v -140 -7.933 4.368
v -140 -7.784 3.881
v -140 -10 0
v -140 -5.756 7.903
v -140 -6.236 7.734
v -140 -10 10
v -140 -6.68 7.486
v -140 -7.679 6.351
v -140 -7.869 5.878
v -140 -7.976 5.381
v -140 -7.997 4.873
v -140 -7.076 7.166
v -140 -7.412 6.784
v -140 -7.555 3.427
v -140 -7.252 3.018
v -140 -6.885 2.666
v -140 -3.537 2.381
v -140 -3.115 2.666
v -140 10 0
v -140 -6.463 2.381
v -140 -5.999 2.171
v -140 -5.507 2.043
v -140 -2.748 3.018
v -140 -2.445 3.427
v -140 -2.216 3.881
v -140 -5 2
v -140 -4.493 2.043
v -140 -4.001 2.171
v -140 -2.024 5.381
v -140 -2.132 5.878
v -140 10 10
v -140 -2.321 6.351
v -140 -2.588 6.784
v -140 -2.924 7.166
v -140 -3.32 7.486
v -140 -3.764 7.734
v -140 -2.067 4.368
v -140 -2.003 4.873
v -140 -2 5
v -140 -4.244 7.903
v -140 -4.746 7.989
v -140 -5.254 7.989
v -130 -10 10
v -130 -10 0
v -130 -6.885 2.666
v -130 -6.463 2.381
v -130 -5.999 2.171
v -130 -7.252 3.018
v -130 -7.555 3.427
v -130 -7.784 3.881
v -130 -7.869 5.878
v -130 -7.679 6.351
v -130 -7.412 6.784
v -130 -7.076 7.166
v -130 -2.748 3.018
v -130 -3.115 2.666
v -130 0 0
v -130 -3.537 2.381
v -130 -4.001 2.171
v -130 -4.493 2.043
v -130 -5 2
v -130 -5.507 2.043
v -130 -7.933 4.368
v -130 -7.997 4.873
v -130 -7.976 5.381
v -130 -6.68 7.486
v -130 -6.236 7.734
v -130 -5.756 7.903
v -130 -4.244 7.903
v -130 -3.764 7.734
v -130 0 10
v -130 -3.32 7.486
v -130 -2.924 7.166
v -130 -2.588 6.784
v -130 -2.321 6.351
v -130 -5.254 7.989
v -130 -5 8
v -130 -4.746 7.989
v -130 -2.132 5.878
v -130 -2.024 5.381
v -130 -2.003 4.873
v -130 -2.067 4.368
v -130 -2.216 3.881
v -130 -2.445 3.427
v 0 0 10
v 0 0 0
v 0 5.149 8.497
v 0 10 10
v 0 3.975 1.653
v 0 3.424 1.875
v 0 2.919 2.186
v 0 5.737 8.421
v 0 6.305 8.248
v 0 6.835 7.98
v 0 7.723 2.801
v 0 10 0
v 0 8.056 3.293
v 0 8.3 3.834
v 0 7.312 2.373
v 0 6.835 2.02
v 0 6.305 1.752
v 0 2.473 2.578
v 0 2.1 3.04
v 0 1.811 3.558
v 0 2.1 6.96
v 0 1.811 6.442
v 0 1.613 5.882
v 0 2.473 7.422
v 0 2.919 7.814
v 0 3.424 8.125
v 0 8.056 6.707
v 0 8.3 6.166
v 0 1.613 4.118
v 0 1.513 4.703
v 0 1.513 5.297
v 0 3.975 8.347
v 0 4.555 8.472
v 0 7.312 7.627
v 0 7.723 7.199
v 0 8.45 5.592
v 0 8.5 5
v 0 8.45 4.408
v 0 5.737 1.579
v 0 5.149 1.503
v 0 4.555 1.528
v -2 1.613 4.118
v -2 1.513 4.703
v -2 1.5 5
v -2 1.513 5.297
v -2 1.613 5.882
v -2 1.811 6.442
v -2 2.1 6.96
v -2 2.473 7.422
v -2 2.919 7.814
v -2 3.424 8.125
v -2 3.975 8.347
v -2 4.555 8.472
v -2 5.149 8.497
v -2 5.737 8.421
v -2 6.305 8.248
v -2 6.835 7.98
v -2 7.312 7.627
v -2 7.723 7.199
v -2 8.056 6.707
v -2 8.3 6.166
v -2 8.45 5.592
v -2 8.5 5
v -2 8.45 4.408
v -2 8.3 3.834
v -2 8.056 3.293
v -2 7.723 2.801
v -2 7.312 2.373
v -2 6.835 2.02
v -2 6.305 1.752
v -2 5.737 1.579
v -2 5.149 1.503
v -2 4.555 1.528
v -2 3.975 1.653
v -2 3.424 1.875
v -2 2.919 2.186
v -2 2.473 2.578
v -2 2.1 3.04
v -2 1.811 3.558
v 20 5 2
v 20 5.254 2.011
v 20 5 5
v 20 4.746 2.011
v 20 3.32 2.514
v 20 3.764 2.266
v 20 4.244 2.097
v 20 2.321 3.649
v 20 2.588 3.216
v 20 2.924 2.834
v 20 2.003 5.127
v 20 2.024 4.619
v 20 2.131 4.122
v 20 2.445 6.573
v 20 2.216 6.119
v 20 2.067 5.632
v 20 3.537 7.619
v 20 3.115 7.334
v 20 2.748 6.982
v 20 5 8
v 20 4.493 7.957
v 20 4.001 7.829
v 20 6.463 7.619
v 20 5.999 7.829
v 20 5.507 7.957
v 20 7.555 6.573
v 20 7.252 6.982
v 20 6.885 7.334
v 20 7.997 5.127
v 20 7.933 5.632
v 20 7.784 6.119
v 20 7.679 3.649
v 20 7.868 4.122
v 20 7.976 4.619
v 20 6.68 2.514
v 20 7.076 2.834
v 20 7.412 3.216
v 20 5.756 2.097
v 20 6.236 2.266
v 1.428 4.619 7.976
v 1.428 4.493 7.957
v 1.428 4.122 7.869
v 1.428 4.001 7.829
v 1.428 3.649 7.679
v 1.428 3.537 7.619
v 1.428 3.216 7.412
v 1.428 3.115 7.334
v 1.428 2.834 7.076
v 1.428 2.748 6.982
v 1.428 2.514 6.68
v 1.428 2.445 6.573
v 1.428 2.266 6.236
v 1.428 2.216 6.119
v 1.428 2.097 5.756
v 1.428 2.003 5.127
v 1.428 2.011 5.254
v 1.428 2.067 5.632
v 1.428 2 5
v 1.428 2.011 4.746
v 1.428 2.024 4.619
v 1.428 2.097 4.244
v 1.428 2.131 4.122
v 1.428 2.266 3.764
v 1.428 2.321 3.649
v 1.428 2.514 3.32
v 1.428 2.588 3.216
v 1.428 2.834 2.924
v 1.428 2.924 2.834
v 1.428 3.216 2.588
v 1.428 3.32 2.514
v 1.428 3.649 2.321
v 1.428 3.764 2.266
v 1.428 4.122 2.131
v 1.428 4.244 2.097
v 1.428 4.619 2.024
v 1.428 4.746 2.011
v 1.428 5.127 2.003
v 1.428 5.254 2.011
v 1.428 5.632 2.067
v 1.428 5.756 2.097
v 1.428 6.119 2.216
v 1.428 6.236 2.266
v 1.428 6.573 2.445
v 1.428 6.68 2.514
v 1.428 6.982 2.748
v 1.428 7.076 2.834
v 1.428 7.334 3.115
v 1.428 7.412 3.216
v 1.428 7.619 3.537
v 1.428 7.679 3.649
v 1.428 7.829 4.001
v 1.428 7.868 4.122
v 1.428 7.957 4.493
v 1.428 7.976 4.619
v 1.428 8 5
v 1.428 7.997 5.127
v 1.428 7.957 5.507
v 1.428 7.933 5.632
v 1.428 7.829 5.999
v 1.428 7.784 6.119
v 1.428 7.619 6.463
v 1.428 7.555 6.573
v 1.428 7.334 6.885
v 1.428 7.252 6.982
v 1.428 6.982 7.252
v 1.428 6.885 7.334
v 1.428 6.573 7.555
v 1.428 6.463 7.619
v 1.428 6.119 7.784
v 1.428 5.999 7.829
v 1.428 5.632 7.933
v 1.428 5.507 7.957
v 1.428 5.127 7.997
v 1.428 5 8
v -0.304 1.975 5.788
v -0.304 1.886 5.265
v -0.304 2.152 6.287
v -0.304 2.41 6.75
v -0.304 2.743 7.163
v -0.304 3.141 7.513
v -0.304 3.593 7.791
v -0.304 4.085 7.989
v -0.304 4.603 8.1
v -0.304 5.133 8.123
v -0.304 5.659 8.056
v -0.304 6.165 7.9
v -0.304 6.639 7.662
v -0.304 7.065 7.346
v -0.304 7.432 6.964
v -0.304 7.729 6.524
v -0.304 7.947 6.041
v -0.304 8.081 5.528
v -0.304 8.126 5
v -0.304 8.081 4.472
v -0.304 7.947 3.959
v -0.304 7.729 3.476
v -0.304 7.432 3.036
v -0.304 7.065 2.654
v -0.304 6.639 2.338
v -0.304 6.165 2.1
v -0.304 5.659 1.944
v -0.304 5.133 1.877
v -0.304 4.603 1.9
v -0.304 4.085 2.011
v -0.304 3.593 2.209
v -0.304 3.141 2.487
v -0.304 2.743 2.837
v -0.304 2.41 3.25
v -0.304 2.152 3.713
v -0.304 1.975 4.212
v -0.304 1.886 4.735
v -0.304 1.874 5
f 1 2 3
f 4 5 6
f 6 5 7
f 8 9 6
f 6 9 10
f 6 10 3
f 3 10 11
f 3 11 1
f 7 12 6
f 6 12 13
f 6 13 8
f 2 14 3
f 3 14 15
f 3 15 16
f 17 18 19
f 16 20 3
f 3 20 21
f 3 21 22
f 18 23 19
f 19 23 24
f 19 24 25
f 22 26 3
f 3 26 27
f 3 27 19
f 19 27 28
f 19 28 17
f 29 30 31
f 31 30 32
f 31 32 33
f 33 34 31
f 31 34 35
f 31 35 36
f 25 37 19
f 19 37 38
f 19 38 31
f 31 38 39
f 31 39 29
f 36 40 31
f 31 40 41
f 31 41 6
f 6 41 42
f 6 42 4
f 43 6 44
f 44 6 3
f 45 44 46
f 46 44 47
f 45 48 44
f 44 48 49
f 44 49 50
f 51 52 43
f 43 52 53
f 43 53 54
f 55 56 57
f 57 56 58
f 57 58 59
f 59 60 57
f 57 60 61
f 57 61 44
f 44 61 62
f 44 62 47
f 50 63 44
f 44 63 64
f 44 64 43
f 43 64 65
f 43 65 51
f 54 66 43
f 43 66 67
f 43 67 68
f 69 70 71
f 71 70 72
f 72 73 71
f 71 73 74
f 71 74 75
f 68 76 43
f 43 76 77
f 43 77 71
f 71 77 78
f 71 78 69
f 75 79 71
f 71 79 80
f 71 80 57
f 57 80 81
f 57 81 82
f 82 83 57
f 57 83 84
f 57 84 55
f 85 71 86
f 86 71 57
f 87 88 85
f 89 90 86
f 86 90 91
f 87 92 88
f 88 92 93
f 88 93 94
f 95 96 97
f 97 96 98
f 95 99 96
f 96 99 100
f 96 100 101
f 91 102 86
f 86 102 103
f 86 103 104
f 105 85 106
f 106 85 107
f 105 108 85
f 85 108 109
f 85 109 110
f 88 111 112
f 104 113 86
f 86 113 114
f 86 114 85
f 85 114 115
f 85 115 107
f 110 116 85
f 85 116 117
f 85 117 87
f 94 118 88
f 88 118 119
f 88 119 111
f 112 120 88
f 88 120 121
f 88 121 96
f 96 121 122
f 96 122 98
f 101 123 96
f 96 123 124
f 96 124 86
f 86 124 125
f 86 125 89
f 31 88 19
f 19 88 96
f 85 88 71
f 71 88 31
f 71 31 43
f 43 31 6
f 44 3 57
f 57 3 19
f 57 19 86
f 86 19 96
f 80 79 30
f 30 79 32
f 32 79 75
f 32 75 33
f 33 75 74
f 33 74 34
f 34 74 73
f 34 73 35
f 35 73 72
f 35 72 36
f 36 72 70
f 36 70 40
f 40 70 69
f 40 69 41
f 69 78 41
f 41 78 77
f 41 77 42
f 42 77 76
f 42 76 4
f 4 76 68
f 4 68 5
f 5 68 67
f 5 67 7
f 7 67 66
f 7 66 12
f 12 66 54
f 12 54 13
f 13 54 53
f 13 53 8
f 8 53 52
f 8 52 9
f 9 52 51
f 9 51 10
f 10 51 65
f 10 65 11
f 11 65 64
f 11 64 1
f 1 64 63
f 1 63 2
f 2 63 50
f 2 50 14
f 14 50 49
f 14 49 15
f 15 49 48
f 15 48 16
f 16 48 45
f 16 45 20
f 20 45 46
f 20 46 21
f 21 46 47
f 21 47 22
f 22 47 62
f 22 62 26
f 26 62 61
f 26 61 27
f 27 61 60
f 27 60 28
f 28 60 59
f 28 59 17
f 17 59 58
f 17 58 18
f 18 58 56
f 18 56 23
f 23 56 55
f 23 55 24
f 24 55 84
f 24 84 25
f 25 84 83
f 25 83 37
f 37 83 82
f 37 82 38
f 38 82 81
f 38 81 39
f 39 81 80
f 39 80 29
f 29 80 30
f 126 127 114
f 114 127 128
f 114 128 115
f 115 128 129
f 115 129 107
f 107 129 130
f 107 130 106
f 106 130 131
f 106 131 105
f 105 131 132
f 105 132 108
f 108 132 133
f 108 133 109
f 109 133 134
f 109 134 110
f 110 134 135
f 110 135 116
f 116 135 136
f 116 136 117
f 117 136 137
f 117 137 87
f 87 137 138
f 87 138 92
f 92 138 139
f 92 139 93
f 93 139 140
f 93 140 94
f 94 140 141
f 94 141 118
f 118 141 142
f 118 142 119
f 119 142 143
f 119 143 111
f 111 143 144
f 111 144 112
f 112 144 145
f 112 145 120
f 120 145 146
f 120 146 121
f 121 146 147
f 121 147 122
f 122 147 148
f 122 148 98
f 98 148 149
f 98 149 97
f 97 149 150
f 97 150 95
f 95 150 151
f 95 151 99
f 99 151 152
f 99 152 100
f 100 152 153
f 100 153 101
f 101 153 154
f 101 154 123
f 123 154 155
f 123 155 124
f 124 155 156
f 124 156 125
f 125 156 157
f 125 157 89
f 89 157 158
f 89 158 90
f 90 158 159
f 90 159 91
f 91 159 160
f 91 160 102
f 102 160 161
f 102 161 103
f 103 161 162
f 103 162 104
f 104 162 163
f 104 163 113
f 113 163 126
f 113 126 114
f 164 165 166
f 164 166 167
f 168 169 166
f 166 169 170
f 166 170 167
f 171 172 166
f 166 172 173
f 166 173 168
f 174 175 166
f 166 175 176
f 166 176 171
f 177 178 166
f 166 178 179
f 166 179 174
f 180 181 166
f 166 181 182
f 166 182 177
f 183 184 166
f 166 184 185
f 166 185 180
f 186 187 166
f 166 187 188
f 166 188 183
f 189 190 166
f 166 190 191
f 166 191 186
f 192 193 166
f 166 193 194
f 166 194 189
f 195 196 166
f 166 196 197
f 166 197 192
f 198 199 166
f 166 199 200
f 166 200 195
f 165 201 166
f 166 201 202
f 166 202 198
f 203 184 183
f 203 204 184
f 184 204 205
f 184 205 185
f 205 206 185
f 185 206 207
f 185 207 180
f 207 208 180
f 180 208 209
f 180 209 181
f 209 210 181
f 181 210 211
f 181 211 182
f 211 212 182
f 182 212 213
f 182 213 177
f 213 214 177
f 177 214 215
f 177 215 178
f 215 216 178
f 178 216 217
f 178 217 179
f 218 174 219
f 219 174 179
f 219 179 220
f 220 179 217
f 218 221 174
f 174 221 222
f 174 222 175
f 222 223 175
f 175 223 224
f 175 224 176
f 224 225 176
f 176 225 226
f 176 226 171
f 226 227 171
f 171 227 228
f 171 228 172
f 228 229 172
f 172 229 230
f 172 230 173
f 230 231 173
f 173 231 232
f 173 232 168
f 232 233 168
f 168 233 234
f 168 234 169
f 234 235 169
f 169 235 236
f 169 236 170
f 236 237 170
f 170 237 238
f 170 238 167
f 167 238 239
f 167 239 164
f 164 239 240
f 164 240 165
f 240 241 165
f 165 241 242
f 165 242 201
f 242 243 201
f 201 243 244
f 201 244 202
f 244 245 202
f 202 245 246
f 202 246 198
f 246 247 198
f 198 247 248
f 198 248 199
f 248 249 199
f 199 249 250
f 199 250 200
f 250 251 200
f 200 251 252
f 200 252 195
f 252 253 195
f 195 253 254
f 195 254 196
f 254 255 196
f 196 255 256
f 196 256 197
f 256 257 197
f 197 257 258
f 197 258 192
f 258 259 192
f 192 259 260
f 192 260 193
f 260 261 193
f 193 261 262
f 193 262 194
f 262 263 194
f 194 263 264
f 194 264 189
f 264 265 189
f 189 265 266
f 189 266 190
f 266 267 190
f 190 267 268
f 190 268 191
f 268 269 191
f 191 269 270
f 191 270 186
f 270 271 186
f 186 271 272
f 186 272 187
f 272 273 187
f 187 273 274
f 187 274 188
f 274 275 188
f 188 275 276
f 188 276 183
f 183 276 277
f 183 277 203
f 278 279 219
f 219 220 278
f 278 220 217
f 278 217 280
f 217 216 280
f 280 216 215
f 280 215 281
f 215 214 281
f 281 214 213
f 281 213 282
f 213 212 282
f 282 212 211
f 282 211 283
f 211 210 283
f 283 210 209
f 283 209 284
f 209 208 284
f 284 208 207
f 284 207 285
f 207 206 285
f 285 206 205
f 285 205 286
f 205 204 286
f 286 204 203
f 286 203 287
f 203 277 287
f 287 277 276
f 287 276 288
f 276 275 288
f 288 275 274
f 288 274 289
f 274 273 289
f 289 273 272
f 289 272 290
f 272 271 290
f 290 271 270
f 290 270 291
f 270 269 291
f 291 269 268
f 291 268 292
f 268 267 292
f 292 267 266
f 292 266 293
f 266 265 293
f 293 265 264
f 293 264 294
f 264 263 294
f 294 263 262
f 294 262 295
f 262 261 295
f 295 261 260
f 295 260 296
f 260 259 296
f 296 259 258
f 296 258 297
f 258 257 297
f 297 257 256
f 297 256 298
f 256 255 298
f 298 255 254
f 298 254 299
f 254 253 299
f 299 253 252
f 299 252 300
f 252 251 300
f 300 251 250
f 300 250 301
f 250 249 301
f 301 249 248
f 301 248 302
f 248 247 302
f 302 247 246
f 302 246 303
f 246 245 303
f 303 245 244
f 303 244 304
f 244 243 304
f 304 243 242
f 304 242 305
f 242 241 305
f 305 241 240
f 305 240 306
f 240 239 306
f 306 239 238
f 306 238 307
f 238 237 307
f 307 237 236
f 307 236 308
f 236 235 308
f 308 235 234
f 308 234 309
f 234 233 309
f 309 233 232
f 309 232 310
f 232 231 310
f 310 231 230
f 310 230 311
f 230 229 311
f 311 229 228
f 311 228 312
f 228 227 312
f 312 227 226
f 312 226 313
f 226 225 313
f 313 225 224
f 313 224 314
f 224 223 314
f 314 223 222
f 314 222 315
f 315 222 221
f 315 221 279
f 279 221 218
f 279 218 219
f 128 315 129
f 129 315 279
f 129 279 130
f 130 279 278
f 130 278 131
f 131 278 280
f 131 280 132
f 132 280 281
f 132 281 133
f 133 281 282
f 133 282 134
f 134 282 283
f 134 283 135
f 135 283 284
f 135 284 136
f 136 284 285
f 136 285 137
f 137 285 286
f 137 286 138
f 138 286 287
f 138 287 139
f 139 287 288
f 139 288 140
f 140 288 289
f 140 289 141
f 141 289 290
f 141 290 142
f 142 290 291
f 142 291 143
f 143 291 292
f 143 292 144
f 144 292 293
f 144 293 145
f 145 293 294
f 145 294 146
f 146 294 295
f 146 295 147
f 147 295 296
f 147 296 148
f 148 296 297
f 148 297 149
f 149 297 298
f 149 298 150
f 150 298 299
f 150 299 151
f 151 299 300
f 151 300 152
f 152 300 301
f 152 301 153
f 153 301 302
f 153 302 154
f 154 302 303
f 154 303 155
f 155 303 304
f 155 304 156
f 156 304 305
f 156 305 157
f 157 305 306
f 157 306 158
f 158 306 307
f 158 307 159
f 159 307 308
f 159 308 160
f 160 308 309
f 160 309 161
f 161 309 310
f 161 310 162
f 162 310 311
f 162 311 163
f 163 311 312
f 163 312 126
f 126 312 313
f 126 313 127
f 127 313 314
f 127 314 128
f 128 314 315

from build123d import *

# Parameters (mm, degrees)
BOSS_EXTRUDE1_DEPTH = 10
SKETCH4_R           = 3
CUT_EXTRUDE2_DEPTH  = 150
SKETCH4_5_R         = 3
BOSS_EXTRUDE3_DEPTH = 20
CUT_EXTRUDE4_START  = -2
SKETCH5_R           = 3.5
SKETCH5_R_2         = 3
CUT_EXTRUDE4_DEPTH  = 2
FILLET2_R           = 12


with BuildPart() as part:
    # Sketch1 → Boss-Extrude1 (new body)
    with BuildSketch(Plane.XY):
        Polygon((-140, 10), (0, 10), (0, 0), (-130, 0), (-130, -10), (-140, -10), align=None)
    extrude(amount=BOSS_EXTRUDE1_DEPTH)

    # Sketch4 → Cut-Extrude2 (cut)
    with BuildSketch(Plane(origin=(0, 0, 0), x_dir=(0, 0, -1), z_dir=(1, 0, 0))):
        with Locations(Location((-5, -5, 0), (0, 0, 90))):
            Circle(SKETCH4_R)
    extrude(amount=-CUT_EXTRUDE2_DEPTH, mode=Mode.SUBTRACT)

    # Sketch4<5> → Boss-Extrude3 (add)
    with BuildSketch(Plane(origin=(0, 0, 0), x_dir=(0, 0, -1), z_dir=(1, 0, 0))):
        with Locations((-5, 5)):
            Circle(SKETCH4_5_R)
    extrude(amount=BOSS_EXTRUDE3_DEPTH)

    # Sketch5 → Cut-Extrude4 (cut)
    with BuildSketch(Plane(origin=(0, 0, 0), x_dir=(0, 0, -1), z_dir=(1, 0, 0)).offset(CUT_EXTRUDE4_START)):
        with Locations(Location((-5, 5, 0), (0, 0, 90))):
            Circle(SKETCH5_R)
        with Locations(Location((-5, 5, 0), (0, 0, 90))):
            Circle(SKETCH5_R_2, mode=Mode.SUBTRACT)
    extrude(amount=CUT_EXTRUDE4_DEPTH, mode=Mode.SUBTRACT)

    # Fillet2
    # the kernel refuses this fillet: 12 mm, written as the material it adds along each edge
    with BuildSketch(Plane(origin=(-2, 5, 5), x_dir=(0, 1, 0), z_dir=(0, 0, -1))) as fillet2_piece_1:
        with BuildLine():
            CenterArc((15, 3.4278273), FILLET2_R, 180, 16.597842136)
            Line((3, 3.4278273), (2.76, 3.4278273))
            Line((2.76, 3.4278273), (2.76, 0))
            Line((2.76, 0), (3, -0.24))
            ThreePointArc((3, -0.24), (3.25, -0.24), (3.27, -0.068556546))
            Line((3.27, -0.068556546), (3.5, 0))
        make_face()
    revolve(axis=Axis((-2, 5, 5), (1, 0, 0)))


solid = part.part
